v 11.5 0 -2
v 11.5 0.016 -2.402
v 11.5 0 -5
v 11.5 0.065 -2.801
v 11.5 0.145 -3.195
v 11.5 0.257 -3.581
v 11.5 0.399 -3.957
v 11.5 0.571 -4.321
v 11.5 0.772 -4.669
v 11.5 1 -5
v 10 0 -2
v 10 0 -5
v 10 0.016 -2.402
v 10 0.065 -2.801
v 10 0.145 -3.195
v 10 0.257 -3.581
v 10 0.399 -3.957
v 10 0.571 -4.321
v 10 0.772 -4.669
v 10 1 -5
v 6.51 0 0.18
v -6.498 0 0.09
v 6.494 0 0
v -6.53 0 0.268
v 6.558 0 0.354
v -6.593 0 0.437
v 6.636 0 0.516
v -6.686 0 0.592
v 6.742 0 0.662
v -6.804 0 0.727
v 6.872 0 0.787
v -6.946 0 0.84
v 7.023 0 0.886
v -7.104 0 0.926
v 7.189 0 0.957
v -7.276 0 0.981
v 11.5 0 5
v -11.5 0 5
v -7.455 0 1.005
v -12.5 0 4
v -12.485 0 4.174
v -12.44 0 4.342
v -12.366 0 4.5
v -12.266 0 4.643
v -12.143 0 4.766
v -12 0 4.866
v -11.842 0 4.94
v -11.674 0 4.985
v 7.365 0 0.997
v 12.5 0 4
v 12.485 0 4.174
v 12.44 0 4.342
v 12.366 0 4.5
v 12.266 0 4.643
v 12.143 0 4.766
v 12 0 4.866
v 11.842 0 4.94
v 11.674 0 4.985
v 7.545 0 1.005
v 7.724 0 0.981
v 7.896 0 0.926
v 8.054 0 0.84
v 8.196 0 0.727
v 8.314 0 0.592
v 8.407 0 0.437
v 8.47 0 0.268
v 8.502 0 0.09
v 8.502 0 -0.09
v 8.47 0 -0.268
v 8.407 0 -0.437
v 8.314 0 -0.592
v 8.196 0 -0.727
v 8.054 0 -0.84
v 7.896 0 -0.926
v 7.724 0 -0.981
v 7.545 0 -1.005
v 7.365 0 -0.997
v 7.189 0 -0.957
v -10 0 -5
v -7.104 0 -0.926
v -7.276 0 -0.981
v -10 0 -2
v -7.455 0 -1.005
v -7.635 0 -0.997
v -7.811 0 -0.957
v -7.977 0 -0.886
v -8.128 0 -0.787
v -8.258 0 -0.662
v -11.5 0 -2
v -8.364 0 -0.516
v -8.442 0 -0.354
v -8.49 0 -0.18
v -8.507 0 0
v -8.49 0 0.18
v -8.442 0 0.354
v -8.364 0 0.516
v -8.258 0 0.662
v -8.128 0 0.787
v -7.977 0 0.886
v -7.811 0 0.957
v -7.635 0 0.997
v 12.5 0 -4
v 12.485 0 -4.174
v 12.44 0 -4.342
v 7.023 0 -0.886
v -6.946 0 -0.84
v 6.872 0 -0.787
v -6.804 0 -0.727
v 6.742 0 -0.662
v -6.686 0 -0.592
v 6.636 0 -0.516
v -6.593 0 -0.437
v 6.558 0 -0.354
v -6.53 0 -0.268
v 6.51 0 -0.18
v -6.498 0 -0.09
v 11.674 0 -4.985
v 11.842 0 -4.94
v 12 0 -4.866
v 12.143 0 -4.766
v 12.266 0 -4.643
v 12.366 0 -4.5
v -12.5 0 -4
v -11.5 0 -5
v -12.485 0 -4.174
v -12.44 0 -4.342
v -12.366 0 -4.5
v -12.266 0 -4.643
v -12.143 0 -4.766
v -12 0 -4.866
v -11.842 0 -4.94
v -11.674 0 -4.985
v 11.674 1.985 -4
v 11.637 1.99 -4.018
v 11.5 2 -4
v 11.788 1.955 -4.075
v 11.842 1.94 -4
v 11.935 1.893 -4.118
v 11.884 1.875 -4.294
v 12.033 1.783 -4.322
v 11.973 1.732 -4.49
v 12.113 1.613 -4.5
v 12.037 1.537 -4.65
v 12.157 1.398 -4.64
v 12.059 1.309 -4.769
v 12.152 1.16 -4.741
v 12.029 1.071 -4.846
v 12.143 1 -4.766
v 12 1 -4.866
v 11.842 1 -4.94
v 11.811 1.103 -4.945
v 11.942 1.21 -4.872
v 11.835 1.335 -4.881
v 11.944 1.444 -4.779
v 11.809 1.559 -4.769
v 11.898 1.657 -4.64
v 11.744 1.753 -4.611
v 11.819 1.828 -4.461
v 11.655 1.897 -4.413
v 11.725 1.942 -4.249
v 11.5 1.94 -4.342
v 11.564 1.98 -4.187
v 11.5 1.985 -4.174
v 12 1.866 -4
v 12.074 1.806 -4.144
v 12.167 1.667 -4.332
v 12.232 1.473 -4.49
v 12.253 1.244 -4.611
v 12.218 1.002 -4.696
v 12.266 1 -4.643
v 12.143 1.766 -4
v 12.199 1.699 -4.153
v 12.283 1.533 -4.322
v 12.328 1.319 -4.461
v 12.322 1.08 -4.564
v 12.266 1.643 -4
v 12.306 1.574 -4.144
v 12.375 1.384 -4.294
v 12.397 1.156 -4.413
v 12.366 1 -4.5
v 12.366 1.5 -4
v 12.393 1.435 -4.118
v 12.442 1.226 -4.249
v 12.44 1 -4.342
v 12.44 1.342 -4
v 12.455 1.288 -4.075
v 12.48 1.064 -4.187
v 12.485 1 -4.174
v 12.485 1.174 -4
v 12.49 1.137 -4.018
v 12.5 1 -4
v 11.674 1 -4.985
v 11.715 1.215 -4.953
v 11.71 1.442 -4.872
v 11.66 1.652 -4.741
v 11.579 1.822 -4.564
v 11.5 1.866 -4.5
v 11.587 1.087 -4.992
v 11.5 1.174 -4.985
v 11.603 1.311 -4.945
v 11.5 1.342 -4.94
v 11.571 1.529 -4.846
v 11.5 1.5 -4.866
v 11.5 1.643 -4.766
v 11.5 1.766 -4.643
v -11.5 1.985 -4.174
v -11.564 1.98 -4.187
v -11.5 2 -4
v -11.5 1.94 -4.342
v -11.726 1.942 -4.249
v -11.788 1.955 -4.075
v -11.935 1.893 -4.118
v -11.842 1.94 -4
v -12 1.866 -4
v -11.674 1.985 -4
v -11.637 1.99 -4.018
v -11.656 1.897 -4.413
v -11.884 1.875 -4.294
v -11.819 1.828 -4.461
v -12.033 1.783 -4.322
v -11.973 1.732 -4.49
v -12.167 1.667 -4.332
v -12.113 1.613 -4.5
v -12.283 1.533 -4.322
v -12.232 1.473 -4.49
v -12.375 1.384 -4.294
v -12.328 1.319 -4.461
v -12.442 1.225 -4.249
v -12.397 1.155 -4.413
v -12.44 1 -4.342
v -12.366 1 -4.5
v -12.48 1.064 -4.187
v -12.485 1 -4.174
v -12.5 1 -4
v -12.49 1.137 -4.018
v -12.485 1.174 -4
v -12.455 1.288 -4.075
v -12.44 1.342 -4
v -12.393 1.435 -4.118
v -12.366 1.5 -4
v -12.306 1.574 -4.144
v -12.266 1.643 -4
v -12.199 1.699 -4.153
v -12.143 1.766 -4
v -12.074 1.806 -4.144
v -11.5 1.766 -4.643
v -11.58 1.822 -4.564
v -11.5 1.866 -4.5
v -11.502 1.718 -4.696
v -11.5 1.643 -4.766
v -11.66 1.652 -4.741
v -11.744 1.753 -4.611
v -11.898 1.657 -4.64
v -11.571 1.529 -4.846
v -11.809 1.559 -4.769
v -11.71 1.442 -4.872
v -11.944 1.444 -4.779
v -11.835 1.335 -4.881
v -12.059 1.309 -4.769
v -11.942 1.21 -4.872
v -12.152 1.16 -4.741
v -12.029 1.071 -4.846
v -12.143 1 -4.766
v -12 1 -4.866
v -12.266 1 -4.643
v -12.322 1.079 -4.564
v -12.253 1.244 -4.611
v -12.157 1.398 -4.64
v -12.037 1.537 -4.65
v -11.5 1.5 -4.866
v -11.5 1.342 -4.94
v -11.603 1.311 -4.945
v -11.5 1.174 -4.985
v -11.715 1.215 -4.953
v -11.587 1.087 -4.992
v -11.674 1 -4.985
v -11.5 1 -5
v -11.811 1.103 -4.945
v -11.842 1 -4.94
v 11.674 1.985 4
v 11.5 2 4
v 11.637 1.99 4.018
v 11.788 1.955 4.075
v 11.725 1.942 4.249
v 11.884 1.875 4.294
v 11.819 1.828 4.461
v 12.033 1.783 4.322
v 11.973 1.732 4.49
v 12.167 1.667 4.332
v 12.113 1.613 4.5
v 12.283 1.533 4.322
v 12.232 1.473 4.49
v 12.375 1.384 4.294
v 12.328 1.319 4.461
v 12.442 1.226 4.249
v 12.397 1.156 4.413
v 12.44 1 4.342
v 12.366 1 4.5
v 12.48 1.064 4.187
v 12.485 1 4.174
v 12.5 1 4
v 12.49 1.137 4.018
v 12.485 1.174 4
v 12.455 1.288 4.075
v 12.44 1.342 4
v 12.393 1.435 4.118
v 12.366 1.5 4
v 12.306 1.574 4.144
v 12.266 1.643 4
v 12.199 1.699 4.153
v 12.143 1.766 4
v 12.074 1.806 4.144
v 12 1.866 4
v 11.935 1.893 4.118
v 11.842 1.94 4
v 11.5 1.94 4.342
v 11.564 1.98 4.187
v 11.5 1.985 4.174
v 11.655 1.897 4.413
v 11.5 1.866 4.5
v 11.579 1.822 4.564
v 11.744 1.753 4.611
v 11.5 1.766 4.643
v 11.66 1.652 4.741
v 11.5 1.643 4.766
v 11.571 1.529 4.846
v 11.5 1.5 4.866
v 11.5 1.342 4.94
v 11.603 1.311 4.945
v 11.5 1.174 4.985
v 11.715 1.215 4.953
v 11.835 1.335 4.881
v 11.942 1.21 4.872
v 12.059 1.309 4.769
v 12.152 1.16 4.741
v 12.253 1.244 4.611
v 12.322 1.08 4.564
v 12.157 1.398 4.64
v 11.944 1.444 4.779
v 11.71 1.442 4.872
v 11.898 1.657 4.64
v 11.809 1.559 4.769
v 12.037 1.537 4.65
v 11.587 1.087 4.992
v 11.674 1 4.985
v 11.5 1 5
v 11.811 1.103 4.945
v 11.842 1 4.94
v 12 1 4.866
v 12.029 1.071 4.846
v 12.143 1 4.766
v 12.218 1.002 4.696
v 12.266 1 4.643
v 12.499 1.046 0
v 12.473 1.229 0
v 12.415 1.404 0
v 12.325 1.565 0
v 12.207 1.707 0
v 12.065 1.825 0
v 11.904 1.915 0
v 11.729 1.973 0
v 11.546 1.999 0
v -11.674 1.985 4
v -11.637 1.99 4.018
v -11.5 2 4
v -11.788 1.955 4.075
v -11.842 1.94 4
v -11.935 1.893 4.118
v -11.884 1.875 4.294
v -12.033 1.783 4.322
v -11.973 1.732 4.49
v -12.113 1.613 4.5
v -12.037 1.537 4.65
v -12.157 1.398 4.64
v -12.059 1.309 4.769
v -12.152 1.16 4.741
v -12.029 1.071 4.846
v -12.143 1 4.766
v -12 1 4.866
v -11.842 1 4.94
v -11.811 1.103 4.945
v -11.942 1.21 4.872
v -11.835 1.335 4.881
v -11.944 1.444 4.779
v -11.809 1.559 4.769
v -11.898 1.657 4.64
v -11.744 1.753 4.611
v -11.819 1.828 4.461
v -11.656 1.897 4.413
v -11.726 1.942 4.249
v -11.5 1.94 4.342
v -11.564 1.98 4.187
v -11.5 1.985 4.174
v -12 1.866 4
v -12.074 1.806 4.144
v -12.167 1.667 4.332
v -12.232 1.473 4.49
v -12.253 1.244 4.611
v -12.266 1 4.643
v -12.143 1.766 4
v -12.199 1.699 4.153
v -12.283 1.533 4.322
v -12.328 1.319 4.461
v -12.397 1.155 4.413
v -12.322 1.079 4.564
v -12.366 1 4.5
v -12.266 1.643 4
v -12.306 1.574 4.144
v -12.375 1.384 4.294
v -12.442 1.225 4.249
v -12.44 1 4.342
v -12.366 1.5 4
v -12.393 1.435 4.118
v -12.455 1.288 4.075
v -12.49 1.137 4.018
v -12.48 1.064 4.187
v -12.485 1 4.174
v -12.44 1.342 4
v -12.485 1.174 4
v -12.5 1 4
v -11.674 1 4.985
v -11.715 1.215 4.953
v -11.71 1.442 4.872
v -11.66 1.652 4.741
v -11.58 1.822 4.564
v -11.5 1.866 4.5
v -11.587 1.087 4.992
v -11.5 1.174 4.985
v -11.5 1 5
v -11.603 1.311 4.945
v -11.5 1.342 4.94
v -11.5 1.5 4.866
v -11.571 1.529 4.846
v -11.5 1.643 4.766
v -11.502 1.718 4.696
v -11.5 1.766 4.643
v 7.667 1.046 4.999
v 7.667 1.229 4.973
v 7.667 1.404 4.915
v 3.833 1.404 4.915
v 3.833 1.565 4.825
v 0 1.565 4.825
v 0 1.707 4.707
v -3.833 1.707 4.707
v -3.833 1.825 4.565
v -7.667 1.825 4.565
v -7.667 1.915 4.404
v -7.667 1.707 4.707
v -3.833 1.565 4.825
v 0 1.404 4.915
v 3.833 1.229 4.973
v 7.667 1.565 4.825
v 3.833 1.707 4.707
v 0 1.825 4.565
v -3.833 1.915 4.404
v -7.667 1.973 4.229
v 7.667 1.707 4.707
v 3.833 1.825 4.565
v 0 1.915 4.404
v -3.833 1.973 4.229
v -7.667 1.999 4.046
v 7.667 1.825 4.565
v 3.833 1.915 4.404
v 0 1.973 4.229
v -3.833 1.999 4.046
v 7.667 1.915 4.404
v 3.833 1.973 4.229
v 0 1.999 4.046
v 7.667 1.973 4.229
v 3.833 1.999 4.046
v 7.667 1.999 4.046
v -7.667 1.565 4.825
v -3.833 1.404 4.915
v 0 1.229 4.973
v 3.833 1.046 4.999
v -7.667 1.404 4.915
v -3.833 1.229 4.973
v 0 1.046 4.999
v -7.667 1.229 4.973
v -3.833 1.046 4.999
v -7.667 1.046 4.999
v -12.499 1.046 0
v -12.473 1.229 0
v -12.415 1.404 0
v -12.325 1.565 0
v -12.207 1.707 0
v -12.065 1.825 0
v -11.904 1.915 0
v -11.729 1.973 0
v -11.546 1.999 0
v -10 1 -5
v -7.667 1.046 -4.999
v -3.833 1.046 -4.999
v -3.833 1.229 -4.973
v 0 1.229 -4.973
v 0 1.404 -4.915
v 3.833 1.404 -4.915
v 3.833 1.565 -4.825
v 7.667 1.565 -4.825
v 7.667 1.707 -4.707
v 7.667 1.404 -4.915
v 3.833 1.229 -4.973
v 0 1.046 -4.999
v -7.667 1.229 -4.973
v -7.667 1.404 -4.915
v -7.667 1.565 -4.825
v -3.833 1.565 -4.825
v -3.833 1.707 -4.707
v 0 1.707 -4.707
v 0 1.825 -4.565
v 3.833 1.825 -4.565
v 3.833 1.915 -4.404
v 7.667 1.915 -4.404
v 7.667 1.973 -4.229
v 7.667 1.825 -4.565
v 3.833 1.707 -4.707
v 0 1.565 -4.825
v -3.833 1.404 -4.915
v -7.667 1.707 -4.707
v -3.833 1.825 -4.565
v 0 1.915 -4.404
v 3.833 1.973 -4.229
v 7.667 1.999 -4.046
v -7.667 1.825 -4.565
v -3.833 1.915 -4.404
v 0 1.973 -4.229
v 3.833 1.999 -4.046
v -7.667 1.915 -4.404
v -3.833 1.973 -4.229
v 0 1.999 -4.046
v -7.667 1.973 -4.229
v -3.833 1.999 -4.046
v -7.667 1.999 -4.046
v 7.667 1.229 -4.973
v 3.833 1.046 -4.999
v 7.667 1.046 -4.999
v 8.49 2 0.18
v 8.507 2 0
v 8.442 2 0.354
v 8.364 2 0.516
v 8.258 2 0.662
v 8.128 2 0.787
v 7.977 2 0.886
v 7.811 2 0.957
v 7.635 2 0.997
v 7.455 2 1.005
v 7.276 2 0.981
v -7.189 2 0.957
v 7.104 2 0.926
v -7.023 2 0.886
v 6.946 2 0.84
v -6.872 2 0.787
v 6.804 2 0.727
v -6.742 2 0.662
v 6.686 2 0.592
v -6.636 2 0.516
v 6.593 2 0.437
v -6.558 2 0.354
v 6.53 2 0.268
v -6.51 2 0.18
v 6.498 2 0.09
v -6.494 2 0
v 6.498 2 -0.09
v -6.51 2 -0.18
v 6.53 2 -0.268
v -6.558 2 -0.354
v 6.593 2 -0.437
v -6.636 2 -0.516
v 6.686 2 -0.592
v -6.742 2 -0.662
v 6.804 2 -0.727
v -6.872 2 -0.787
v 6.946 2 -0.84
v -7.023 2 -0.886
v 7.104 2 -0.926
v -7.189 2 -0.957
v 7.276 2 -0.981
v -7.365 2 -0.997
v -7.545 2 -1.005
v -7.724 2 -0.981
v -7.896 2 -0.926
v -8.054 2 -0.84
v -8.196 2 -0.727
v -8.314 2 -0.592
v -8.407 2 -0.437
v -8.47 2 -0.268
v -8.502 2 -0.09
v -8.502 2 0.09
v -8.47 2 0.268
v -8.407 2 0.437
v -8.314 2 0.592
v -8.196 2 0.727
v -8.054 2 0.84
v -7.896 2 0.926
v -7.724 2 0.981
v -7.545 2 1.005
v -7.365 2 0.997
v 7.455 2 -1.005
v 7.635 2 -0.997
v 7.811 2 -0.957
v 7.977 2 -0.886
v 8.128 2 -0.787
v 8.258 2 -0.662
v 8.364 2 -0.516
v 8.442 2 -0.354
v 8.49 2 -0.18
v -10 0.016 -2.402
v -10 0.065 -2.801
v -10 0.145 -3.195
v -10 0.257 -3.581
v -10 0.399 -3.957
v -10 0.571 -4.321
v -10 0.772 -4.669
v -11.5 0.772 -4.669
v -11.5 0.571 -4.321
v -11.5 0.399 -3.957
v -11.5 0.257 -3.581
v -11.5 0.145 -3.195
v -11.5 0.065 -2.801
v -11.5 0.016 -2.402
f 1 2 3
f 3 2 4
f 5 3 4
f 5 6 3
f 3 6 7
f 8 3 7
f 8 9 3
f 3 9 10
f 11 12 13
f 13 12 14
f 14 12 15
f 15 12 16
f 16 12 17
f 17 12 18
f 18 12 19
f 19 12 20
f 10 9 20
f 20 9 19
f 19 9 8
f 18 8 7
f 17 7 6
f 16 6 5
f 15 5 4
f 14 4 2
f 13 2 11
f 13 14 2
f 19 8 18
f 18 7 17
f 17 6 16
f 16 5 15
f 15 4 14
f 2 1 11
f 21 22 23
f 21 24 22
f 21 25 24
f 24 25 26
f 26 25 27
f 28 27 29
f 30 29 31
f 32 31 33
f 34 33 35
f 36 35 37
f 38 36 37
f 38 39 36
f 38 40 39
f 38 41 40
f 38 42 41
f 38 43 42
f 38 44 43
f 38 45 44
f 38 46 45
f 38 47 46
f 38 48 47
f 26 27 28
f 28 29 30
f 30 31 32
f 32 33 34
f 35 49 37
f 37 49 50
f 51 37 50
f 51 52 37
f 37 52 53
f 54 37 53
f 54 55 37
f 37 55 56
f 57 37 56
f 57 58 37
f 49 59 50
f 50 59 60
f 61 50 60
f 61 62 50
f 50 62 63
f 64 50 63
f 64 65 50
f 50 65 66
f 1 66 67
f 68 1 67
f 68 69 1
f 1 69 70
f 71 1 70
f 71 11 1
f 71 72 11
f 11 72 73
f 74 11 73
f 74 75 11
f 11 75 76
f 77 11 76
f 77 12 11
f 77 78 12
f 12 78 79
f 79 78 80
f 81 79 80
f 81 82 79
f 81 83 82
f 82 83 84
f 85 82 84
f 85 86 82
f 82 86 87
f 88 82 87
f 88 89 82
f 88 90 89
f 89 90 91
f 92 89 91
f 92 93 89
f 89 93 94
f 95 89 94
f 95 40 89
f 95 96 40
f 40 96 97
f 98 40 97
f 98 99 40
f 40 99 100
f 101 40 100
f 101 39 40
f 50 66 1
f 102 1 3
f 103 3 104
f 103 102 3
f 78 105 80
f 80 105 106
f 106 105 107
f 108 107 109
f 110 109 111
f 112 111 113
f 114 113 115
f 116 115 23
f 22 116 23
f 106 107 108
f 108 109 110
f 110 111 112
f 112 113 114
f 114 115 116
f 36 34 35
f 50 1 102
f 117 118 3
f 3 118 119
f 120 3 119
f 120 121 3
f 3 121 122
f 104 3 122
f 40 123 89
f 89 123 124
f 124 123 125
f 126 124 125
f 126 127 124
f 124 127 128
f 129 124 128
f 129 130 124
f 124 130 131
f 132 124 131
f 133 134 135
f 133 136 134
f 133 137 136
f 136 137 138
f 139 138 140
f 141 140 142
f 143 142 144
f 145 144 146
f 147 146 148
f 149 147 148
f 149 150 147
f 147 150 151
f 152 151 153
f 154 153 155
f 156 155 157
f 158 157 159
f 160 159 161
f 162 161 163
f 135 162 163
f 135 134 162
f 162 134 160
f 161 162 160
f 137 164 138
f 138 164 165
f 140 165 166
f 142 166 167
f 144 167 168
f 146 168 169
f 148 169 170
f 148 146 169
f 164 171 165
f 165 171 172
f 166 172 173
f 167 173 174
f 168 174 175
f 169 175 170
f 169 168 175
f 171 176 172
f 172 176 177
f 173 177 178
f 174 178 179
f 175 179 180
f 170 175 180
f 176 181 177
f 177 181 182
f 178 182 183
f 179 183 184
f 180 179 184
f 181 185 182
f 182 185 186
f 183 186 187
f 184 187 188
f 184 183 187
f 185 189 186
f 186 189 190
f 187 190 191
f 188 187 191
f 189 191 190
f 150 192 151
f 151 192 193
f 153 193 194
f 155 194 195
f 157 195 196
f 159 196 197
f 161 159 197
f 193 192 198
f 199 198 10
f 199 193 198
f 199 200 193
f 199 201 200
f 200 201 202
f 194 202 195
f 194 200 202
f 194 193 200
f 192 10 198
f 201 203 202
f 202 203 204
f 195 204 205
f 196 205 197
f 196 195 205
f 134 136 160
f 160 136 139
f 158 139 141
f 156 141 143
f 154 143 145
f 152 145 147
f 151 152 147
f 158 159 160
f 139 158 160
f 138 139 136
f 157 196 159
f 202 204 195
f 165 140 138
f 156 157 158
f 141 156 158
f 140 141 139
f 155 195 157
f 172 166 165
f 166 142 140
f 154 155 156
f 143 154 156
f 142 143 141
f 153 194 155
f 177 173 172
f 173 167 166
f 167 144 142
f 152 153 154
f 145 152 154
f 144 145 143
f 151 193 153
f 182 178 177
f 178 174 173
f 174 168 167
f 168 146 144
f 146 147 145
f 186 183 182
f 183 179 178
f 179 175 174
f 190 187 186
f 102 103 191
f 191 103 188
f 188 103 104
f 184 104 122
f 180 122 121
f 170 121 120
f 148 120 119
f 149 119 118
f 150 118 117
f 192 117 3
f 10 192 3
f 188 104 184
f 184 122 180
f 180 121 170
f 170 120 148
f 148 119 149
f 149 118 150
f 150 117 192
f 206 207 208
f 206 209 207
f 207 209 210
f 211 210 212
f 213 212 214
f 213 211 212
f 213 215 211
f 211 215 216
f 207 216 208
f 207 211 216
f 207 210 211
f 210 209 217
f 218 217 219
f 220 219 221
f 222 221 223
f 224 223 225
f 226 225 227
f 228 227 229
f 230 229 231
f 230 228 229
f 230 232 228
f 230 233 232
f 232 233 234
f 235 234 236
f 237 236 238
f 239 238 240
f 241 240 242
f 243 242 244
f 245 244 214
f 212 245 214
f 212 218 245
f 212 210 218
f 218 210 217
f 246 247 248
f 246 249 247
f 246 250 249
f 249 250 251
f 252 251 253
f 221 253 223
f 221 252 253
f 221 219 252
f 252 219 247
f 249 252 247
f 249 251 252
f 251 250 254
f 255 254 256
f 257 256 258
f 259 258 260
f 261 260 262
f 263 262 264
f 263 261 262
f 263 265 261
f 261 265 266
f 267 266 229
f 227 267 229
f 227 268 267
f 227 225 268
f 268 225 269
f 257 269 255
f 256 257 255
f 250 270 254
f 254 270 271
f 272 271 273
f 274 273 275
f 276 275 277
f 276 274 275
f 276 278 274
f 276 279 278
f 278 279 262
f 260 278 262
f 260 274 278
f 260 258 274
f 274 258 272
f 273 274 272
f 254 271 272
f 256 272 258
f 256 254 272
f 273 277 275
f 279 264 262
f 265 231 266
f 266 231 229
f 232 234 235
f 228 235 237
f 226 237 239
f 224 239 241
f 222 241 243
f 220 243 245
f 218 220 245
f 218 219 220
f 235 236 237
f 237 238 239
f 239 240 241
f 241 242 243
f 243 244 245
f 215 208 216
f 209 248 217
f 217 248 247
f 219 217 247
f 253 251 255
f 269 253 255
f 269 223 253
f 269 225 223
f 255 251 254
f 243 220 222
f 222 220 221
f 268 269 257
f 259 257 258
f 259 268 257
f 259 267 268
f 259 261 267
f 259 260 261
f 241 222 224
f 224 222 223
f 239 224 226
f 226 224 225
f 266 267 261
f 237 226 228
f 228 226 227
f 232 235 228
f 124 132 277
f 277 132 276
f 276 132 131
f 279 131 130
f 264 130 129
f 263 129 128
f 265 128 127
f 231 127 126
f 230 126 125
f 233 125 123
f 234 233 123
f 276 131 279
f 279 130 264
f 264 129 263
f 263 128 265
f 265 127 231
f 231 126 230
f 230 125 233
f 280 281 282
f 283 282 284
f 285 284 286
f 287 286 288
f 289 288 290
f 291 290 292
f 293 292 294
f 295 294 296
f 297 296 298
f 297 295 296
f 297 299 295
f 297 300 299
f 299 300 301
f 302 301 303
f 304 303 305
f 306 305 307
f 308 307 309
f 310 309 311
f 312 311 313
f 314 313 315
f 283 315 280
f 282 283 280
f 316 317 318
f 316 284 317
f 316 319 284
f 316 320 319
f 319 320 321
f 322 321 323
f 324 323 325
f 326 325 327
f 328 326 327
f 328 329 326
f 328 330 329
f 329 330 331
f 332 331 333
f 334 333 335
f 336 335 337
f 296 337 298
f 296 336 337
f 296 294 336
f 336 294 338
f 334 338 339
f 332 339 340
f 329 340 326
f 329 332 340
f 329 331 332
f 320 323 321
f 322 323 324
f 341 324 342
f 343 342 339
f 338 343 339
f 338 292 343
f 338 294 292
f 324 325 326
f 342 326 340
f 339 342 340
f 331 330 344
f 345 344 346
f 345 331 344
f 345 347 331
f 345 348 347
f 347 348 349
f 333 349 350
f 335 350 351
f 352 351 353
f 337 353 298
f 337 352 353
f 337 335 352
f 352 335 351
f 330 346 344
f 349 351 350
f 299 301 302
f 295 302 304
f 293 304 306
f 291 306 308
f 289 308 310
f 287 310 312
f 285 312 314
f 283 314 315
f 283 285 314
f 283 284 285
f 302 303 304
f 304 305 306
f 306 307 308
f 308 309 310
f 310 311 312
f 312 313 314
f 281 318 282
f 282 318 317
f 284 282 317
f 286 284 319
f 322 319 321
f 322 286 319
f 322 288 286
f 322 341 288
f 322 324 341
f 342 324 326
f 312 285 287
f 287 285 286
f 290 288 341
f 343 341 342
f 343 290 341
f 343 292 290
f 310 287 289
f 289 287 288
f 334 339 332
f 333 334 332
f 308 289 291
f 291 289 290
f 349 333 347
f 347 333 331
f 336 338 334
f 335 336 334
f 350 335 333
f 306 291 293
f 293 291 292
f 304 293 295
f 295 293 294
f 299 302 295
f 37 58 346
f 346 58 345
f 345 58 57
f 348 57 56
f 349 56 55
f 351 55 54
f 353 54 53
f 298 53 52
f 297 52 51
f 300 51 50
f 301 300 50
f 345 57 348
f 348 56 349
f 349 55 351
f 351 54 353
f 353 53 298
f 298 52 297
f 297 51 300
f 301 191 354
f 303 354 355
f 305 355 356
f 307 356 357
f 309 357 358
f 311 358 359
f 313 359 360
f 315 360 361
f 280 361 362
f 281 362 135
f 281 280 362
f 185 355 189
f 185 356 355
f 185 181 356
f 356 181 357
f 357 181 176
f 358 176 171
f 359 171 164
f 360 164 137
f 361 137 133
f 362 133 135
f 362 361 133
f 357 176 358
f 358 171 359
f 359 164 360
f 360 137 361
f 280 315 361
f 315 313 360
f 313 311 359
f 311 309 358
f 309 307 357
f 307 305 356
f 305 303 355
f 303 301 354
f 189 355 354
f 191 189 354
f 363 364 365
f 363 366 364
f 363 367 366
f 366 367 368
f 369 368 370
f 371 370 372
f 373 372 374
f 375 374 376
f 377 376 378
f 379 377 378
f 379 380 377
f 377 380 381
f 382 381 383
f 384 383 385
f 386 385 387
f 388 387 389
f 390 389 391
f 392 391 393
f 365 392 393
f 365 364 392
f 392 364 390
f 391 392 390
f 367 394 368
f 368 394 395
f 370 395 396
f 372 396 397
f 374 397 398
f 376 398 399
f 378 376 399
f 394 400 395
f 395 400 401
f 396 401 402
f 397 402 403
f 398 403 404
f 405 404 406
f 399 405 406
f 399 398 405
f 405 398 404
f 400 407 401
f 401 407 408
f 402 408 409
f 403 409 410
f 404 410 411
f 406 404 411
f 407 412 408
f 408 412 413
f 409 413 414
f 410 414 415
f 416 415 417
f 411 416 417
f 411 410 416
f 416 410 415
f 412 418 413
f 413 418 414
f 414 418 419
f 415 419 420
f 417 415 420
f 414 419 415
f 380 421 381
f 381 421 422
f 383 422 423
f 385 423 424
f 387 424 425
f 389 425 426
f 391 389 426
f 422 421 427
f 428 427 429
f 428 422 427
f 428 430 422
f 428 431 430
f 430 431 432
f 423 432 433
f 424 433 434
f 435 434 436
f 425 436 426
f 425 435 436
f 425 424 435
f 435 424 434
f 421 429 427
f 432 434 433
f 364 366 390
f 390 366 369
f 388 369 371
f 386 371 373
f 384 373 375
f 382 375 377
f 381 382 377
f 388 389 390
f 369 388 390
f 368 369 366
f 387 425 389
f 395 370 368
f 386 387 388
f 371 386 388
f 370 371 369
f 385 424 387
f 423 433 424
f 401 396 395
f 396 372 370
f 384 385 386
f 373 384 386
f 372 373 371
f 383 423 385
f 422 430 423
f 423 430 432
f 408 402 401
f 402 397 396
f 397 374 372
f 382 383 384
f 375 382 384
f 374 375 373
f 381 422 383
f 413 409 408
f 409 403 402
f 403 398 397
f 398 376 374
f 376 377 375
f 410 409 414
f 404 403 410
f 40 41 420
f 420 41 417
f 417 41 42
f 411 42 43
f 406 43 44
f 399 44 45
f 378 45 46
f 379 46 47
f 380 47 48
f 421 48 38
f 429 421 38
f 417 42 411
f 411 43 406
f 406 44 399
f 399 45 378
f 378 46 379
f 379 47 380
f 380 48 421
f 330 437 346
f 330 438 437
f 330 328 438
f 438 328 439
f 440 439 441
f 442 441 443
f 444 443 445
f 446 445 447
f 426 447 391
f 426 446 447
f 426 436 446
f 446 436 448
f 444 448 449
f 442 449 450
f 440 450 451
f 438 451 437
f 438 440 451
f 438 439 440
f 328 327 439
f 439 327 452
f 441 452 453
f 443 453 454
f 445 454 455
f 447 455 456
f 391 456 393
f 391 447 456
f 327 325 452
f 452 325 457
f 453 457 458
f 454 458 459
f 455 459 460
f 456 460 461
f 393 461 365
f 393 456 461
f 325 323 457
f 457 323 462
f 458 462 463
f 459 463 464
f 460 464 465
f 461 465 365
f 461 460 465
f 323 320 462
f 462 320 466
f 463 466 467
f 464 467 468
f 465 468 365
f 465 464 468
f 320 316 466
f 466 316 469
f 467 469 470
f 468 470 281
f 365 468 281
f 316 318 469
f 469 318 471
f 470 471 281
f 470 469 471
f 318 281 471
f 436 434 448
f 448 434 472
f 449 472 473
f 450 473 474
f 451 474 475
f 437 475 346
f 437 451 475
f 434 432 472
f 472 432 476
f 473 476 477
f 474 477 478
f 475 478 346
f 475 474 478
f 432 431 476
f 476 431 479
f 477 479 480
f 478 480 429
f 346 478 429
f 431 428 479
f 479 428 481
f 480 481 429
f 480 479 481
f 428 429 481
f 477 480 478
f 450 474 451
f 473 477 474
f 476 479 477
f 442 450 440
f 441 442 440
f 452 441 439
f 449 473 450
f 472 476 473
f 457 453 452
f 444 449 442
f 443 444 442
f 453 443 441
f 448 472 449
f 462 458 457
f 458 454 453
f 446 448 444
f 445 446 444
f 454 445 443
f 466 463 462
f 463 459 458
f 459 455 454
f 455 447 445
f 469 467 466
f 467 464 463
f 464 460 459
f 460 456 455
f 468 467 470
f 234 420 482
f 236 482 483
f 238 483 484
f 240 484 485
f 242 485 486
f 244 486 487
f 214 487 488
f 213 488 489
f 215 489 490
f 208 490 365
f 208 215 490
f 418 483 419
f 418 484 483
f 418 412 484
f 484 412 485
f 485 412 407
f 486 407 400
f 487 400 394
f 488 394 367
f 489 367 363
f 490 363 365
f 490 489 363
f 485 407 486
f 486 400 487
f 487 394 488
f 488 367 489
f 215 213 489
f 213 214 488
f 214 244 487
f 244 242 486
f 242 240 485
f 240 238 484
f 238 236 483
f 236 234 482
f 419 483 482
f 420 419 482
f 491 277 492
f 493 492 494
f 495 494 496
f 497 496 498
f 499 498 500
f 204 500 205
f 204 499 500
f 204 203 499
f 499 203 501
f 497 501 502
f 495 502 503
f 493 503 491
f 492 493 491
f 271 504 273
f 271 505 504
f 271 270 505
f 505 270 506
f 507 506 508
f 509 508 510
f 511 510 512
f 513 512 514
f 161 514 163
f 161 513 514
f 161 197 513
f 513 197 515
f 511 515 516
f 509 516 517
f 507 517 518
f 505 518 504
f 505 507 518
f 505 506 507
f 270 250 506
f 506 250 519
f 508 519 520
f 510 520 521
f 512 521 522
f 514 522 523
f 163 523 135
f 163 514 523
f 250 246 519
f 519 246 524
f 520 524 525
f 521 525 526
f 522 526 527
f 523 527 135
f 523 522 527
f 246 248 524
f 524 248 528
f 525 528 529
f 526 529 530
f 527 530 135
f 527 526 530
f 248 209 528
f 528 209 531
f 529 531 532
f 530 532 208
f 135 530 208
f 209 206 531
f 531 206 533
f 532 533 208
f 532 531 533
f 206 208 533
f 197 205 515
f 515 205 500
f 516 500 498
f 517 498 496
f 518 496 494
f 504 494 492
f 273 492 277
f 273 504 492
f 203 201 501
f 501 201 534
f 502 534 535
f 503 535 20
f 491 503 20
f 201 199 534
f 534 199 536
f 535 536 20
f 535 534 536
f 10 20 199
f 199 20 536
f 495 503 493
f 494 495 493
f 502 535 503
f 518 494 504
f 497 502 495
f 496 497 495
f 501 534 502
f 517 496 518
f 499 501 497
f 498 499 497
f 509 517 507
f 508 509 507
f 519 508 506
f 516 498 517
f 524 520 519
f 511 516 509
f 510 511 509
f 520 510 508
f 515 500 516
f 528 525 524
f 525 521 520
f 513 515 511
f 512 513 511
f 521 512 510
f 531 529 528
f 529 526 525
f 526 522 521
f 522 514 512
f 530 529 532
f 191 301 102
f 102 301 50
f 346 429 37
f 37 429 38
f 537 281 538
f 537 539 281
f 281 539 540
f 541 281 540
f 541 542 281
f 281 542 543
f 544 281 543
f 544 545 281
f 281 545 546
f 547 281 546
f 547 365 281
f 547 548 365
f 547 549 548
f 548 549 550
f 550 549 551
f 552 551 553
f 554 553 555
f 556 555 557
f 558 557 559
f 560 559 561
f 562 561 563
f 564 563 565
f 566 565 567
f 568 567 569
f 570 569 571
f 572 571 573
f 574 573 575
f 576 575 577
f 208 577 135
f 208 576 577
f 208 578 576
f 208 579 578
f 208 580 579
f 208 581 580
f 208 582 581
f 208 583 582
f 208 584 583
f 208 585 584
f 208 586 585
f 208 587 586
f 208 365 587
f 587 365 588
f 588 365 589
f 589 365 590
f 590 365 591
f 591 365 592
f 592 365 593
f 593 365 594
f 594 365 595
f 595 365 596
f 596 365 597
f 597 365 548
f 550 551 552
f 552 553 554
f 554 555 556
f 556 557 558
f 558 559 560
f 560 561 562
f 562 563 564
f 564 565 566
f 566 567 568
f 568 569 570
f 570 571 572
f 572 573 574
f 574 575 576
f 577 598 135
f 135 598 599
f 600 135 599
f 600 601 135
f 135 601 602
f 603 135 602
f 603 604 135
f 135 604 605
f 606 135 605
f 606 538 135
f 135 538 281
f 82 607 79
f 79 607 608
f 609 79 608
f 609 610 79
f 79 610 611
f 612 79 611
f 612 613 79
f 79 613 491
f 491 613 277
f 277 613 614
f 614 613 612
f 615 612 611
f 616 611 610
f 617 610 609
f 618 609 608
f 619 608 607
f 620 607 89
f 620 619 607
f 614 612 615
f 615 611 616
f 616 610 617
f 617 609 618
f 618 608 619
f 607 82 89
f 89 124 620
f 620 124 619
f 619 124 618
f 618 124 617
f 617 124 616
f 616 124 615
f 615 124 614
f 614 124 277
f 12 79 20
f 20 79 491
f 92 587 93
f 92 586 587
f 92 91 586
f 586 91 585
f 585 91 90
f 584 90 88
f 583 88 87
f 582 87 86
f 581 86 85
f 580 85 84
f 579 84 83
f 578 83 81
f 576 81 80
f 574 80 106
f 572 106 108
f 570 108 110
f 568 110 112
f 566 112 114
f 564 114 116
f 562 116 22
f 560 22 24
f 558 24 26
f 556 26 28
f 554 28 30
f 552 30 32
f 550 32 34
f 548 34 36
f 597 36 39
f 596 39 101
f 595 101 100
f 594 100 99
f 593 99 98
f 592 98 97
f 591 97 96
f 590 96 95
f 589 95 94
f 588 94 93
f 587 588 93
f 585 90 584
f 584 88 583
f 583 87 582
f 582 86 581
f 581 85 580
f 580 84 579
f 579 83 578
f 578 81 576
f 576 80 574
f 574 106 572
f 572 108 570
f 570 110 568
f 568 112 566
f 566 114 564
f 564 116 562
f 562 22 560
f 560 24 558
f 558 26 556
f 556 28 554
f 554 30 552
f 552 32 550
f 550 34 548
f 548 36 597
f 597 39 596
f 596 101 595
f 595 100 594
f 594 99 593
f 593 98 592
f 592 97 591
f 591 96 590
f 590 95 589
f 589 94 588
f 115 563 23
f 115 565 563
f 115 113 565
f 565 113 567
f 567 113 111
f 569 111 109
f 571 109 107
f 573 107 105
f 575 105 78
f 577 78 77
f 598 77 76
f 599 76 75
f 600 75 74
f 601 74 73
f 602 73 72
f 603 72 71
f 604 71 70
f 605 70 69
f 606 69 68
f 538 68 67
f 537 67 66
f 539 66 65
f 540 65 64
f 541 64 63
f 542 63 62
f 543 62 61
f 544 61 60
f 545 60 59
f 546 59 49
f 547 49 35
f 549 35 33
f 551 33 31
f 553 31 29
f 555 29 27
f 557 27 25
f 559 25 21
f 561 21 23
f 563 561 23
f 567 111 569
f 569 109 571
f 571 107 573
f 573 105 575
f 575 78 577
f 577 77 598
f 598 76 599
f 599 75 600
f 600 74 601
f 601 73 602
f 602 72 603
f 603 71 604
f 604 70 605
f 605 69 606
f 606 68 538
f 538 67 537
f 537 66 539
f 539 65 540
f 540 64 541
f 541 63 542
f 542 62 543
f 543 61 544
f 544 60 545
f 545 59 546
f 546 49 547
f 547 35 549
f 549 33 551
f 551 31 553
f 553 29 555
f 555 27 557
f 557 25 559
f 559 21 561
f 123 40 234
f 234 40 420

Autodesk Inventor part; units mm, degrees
ref_plane "YZ Plane" through (0, 0, 0) normal (1, 0, 0) x (0, 1, 0)
ref_plane "XZ Plane" through (0, 0, 0) normal (0, 1, 0) x (-1, 0, 0)
sketch "Sketch1" plane through (0, 0, 0) normal (0, 1, 0) x (-1, 0, 0)
  line L0 (12.5, -5) -> (-12.5, -5)
  line L1 (-12.5, -5) -> (-12.5, 5)
  line L2 (-12.5, 5) -> (12.5, 5)
  line L3 (12.5, 5) -> (12.5, -5)
  point P0 (0, 0)
  point P1 (12.5, 0)
  point P2 (0, -5)
  dimension "d0" = 10
  dimension "d2" = 25
extrude "Extrusion1" add sketch "Sketch1" along normal blind 2
sketch "Sketch2" plane through (0, 2, 0) normal (0, 1, 0) x (1, 0, 0)
  line L0 (12.5, 5) -> (-12.5, 5) projected
  line L1 (-12.5, 5) -> (-12.5, -5) projected
  line L2 (-12.5, -5) -> (12.5, -5) projected
  line L3 (0, 5) -> (0, -5) construction
  point P0 (0, 0)
  point P1 (-7.5, 0)
  point P2 (7.5, 0)
  point P3 (0, 0)
  dimension "d5" = 5
hole "Hole1" at (-7.5, 2, 0) at (7.5, 2, 0) direction (0, -1, 0) diameter 2.013 end through all thread size "M2.5x0.45" class "6H" standard "ISO Metric profile"
ref_plane "Work Plane1" through (0, 5, 0) normal (0, -1, 0) x (1, 0, 0)
sketch "Sketch4" plane through (0, 5, 0) normal (0, -1, 0) x (1, 0, 0)
  line L0 (-11.5, -7) -> (-10, -7) construction
  line L1 (-10, -7) -> (-10, -2) construction
  line L2 (-10, -2) -> (-11.5, -2) construction
  line L3 (-11.5, -2) -> (-11.5, -7) construction
  line L4 (-11.5, -7) -> (-10, -7)
  line L5 (-10, -7) -> (-10, -12)
  line L6 (-10, -12) -> (-11.5, -12)
  line L7 (-11.5, -12) -> (-11.5, -7)
  line L8 (12.5, -5) -> (-12.5, -5) projected
  line L9 (-12.5, -5) -> (-12.5, 5) projected
  line L10 (-12.5, -2) -> (-10, -2)
  point P0 (0, 0)
  dimension "d15" = 3
  dimension "d16" = 5
  dimension "d17" = 5
  dimension "d18" = 1.5
  dimension "d19" = 1
revolve "Revolution1" cut sketch "Sketch4" angle 90 about axis through (-12.5, 5, -2) along (-1, 0, 0)
fillet "Fillet1" radius 1 8 edges at (0, 2, 5) (12.5, 1, 5) (-12.5, 1, 5) (12.5, 2, 0) (-12.5, 2, 0) (0, 2, -5) (-12.5, 1, -5) (12.5, 1, -5)
mirror "Mirror1" about plane through (0, 0, 0) normal (1, 0, 0) of "Revolution1"
properties part number "CableHolder02"
